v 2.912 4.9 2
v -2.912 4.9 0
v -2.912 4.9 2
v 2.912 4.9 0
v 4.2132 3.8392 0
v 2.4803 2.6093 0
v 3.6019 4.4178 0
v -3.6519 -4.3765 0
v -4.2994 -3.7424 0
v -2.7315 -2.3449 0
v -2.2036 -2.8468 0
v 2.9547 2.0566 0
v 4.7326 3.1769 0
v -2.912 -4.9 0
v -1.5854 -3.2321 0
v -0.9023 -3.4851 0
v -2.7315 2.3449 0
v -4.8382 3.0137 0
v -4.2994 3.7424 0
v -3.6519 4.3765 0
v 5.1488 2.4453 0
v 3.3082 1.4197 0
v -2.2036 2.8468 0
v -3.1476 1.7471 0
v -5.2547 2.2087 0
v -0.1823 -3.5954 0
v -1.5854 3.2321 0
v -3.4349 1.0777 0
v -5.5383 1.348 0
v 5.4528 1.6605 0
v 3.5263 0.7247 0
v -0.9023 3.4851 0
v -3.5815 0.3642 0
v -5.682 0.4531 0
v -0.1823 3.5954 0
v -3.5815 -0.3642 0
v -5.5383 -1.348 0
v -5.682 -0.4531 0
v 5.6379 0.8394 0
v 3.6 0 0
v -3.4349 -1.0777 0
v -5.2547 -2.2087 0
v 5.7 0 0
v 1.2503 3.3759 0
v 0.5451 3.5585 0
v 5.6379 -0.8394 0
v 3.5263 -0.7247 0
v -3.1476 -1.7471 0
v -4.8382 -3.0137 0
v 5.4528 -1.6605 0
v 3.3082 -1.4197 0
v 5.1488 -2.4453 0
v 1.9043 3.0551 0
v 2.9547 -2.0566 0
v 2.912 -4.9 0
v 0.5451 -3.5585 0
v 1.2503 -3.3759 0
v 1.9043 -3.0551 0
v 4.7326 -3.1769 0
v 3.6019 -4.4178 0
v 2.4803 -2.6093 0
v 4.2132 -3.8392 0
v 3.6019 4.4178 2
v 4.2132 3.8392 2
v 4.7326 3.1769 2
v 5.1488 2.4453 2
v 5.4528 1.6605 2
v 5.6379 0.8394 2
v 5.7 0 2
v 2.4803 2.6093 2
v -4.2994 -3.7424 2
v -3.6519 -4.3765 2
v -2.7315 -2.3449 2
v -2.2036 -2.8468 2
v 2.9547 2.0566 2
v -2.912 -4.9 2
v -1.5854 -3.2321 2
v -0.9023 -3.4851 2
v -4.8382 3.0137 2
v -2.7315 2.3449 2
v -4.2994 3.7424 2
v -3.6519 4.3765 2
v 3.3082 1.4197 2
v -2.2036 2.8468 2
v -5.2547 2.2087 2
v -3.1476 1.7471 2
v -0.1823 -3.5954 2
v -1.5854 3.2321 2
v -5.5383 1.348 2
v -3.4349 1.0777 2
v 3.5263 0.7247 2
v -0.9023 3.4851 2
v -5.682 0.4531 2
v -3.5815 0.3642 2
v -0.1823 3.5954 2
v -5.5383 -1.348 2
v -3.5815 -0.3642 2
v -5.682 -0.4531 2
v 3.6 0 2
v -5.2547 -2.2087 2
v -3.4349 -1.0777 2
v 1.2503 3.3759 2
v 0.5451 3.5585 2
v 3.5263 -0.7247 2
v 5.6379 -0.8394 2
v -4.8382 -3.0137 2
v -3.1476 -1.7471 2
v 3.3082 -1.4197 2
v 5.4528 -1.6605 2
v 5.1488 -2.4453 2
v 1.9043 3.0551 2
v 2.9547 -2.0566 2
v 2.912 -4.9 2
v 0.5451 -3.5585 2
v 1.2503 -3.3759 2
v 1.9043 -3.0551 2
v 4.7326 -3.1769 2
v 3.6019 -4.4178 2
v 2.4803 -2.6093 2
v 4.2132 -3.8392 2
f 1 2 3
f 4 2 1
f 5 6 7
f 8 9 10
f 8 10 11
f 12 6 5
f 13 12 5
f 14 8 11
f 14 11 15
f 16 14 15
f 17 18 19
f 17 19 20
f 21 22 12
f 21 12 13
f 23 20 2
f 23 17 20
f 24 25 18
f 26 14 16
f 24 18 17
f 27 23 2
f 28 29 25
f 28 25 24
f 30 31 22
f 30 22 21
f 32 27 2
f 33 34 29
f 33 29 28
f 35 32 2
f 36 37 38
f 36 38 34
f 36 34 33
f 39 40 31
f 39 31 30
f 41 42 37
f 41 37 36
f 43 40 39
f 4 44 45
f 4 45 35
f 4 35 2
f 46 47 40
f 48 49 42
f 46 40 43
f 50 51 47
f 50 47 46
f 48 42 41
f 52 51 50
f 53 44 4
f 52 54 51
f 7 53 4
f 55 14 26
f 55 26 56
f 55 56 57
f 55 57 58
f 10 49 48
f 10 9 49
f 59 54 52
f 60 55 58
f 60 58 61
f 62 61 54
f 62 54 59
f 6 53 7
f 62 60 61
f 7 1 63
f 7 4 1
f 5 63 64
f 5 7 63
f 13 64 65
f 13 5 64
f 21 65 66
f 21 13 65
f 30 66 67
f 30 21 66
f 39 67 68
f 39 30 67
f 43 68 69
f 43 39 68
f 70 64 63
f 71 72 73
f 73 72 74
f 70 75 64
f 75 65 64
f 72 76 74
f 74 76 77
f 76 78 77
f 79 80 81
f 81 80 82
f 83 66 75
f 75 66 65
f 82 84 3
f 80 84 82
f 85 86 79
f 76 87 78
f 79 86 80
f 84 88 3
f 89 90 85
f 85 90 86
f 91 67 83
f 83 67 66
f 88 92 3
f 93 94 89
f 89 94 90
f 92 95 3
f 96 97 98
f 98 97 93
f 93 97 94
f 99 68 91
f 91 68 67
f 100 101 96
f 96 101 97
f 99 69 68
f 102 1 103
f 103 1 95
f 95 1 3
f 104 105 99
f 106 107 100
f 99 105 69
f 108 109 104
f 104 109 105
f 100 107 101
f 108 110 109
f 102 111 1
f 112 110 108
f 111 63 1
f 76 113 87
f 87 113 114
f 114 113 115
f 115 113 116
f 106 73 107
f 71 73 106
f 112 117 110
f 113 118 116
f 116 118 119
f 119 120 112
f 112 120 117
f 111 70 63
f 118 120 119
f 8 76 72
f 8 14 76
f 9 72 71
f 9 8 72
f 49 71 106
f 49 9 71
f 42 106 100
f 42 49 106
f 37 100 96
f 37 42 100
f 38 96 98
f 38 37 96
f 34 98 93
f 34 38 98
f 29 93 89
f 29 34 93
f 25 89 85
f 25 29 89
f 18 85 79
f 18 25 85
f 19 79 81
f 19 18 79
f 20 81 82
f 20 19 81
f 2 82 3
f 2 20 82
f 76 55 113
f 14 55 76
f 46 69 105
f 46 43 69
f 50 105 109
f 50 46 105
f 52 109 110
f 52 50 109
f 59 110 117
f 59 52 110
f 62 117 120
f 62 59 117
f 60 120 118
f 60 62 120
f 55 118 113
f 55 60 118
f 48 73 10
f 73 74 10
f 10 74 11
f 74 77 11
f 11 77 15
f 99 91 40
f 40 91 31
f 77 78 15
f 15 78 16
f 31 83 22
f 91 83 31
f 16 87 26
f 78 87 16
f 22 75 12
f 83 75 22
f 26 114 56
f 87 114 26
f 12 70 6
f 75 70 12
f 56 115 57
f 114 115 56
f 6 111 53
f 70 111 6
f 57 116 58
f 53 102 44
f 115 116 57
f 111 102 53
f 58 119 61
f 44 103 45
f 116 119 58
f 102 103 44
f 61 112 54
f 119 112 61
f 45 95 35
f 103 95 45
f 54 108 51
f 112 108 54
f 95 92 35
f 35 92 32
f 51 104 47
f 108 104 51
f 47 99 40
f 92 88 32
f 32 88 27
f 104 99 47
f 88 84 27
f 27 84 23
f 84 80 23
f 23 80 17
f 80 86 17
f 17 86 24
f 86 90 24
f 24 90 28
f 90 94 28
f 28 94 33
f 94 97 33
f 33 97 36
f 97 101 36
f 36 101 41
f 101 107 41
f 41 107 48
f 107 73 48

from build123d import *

# Parameters (mm, degrees)
CIRCLE_R         = 3.6
EXTRUDE004_DEPTH = 2
CIRCLE002_R      = 3.5
EXTRUDE002_DEPTH = 2
CIRCLE003_R      = 5.7
EXTRUDE003_DEPTH = 2
RECTANGLE_W      = 25.8
RECTANGLE_H      = 9.8
EXTRUDE_DEPTH    = 2


with BuildPart() as extrude004:
    # Circle → Extrude004 (new body)
    with BuildSketch(Plane.XY.offset(2)):
        Circle(CIRCLE_R)
    extrude(amount=-EXTRUDE004_DEPTH)


with BuildPart() as extrude002:
    # Circle002 (on Rectangle) → Extrude002 (new body)
    with BuildSketch(Plane(origin=(26.064868, 8.047387, 0), x_dir=(1, 0, 0), z_dir=(0, 0, -1))):
        Circle(CIRCLE002_R)
    extrude(amount=-EXTRUDE002_DEPTH)


with BuildPart() as cut001:
    # Circle003 → Extrude003 (new body)
    with BuildSketch(Plane(origin=(26.064868, 8.047387, 0), x_dir=(1, 0, 0), z_dir=(0, 0, -1))):
        Circle(CIRCLE003_R)
    extrude(amount=-EXTRUDE003_DEPTH)

    # Cut001: cut Extrude002
    add(extrude002.part, mode=Mode.SUBTRACT)


with BuildPart() as cut001_1:
    # Cut001 placement: moved
    add(cut001.part.moved(Location((-26.064868, -8.047387, 0))))


with BuildPart() as cut:
    # Rectangle → Extrude (new body)
    with BuildSketch(Plane(origin=(-12.9, 4.9, 0), x_dir=(1, 0, 0), z_dir=(0, 0, -1))):
        with Locations((12.9, 4.9)):
            Rectangle(RECTANGLE_W, RECTANGLE_H)
    extrude(amount=-EXTRUDE_DEPTH)

    # Common: intersect Cut001
    add(cut001_1.part, mode=Mode.INTERSECT)

    # Cut: cut Extrude004
    add(extrude004.part, mode=Mode.SUBTRACT)


solid = cut.part
